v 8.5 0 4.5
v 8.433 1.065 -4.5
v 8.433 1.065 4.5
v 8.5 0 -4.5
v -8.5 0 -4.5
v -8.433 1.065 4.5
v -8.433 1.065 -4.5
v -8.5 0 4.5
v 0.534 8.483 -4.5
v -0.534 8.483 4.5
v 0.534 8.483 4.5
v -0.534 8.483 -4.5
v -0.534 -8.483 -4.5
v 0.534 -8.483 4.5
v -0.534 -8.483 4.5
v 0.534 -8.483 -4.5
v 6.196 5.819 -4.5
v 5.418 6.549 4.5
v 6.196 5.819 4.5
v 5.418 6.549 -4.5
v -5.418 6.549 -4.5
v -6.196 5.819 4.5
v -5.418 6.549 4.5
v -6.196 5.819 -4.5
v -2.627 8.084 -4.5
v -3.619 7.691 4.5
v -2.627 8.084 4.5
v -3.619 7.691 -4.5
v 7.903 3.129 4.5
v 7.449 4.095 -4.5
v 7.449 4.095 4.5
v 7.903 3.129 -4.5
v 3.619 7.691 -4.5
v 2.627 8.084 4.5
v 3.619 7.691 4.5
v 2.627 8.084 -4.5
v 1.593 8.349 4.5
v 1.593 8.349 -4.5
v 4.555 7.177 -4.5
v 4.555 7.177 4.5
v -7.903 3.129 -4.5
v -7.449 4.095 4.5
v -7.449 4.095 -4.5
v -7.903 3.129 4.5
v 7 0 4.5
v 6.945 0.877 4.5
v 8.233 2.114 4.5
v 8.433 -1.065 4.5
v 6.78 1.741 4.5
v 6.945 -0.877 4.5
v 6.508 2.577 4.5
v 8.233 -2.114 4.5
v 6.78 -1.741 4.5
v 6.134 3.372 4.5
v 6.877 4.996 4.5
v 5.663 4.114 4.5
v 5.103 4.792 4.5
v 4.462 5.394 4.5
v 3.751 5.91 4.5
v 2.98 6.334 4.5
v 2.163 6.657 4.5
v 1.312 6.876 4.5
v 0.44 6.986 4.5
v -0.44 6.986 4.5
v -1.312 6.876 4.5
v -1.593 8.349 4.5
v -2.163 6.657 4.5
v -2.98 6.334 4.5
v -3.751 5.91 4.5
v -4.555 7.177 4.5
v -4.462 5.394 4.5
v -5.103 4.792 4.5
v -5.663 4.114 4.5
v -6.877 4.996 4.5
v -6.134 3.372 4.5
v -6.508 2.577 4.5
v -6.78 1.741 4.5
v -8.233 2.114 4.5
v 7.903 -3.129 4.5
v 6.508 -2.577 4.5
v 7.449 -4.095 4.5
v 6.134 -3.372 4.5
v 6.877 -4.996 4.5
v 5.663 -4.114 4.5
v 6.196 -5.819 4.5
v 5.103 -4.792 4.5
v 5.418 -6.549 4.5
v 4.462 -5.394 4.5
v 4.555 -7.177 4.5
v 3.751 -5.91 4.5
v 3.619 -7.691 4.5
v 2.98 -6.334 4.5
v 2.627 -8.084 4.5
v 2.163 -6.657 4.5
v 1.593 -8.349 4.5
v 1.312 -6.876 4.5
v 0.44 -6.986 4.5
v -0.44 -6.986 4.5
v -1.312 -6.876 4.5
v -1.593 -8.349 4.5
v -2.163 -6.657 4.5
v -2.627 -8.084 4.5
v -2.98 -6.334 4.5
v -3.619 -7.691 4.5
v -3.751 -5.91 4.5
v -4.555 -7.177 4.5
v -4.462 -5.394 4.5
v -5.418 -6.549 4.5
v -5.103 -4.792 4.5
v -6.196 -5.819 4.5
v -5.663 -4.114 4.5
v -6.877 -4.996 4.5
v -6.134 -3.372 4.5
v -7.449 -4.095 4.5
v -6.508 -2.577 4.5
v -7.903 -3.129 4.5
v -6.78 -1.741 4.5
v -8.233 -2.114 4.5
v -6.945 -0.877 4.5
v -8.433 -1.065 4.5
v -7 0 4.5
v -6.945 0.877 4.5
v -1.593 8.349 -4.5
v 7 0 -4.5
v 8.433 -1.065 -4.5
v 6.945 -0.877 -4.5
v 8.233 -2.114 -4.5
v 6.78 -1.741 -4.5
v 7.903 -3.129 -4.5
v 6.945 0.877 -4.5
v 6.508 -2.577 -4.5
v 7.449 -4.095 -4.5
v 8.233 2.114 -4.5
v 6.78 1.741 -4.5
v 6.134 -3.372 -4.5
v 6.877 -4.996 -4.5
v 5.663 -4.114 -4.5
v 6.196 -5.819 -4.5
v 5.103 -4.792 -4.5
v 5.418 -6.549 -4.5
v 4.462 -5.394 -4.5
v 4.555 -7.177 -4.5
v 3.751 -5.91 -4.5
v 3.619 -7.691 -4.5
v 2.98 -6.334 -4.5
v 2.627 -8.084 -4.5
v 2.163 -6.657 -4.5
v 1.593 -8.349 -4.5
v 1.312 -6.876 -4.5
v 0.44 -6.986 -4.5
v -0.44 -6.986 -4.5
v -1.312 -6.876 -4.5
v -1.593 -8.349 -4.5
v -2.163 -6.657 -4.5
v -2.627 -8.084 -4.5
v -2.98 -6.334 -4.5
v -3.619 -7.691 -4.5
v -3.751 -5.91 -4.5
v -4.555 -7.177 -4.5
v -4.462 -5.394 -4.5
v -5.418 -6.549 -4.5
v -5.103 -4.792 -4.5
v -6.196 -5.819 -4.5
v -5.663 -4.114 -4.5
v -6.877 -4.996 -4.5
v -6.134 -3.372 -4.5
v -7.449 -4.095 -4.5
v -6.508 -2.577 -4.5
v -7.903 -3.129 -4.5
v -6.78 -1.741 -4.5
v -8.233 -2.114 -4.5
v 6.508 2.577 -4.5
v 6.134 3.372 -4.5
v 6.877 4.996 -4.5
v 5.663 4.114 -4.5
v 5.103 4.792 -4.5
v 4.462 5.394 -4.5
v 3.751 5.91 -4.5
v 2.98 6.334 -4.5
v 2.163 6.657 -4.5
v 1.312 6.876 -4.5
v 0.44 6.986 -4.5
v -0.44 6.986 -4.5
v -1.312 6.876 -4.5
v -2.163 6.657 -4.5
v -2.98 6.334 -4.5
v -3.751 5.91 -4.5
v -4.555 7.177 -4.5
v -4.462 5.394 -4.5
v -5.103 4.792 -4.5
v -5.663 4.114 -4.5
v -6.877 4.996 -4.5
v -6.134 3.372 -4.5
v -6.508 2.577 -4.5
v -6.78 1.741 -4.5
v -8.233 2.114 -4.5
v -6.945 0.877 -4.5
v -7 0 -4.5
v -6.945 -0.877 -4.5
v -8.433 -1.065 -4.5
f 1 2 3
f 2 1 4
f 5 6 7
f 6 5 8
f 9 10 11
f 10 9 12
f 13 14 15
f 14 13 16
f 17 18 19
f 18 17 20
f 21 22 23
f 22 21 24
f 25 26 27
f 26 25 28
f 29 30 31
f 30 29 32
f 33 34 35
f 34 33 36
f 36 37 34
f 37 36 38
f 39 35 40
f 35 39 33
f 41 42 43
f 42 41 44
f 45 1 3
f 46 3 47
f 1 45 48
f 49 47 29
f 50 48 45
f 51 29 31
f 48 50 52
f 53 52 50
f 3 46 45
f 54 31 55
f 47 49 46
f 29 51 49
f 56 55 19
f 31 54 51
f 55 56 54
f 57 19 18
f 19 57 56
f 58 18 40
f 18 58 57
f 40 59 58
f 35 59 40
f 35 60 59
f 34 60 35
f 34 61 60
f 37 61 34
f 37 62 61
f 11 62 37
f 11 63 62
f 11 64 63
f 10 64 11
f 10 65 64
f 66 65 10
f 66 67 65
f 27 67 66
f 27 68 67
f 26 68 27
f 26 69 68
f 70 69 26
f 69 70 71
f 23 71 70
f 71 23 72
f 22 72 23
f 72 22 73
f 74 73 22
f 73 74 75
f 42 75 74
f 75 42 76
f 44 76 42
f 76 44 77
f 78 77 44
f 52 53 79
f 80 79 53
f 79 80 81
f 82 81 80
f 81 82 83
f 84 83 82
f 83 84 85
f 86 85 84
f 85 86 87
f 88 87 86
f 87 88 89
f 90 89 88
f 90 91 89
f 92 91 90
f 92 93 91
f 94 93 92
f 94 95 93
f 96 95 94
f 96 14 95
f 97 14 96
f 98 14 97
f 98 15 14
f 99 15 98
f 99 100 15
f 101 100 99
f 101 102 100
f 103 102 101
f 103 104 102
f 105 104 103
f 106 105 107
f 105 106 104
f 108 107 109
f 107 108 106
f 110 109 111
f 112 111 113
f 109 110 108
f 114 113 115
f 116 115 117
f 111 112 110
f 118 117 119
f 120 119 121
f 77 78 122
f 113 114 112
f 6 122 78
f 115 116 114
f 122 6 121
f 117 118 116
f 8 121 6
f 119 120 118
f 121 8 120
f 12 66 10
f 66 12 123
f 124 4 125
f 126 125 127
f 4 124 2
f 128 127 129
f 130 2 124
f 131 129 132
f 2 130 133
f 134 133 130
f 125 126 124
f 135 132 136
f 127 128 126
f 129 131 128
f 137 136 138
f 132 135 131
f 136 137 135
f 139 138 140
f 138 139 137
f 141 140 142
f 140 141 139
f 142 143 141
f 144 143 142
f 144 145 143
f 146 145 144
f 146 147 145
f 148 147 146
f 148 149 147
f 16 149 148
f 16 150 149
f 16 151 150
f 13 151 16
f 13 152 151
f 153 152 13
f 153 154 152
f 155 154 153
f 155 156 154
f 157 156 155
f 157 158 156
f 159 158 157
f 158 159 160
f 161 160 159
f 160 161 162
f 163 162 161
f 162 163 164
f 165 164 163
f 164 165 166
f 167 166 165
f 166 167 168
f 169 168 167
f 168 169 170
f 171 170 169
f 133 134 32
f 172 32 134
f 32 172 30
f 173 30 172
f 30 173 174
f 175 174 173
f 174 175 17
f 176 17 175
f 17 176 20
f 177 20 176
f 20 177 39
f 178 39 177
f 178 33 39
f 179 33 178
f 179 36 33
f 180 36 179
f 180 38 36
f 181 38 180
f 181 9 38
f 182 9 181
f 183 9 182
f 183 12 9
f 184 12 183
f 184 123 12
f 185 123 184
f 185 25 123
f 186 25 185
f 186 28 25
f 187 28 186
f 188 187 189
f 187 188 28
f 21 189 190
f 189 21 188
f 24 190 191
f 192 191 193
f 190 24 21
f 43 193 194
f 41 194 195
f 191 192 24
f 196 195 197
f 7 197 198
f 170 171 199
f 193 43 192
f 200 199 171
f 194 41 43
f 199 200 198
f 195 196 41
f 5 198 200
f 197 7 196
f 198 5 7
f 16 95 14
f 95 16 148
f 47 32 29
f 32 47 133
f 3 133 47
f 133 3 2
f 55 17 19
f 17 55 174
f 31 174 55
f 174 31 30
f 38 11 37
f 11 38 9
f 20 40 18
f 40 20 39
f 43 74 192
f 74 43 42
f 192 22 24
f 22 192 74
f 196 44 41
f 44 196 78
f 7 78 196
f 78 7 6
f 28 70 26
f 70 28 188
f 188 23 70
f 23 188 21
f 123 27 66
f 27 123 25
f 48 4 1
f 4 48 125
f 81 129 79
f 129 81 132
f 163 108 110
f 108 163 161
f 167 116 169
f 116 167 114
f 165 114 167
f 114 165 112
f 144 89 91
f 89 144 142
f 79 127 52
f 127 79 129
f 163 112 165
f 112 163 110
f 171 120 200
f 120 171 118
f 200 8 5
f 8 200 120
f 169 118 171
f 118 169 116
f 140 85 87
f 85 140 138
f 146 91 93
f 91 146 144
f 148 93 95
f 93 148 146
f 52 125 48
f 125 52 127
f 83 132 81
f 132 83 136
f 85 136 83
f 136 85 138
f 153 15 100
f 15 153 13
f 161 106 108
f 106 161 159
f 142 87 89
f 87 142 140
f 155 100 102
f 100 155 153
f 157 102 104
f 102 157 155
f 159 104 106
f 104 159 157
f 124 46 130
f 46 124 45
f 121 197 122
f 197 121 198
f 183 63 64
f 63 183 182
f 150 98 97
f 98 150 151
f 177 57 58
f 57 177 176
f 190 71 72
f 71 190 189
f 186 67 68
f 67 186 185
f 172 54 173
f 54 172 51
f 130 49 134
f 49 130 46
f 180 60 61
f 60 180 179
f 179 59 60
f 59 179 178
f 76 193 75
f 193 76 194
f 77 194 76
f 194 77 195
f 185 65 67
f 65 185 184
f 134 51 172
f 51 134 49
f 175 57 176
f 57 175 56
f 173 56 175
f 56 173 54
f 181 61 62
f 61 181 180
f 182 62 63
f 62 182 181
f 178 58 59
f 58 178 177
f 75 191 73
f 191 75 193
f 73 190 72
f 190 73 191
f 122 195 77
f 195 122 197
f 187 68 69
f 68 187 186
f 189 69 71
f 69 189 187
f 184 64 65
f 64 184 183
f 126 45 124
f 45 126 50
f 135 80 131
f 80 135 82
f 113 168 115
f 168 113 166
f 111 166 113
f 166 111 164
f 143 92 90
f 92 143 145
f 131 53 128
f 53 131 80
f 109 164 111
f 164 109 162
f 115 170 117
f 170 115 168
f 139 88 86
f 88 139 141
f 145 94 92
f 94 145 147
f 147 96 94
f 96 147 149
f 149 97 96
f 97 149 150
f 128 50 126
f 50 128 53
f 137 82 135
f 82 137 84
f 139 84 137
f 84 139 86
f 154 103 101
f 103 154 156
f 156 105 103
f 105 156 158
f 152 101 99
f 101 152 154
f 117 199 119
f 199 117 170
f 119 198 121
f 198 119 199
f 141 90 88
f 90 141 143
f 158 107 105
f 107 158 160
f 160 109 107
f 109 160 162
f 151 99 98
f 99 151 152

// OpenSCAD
$fn = 50;


difference() {
	union() {
		translate(v = [0, 0, -4.5000000000]) {
			cylinder(h = 9, r = 8.5000000000);
		}
	}
	union() {
		translate(v = [0, 0, -100.0000000000]) {
			cylinder(h = 200, r = 7);
		}
	}
}
